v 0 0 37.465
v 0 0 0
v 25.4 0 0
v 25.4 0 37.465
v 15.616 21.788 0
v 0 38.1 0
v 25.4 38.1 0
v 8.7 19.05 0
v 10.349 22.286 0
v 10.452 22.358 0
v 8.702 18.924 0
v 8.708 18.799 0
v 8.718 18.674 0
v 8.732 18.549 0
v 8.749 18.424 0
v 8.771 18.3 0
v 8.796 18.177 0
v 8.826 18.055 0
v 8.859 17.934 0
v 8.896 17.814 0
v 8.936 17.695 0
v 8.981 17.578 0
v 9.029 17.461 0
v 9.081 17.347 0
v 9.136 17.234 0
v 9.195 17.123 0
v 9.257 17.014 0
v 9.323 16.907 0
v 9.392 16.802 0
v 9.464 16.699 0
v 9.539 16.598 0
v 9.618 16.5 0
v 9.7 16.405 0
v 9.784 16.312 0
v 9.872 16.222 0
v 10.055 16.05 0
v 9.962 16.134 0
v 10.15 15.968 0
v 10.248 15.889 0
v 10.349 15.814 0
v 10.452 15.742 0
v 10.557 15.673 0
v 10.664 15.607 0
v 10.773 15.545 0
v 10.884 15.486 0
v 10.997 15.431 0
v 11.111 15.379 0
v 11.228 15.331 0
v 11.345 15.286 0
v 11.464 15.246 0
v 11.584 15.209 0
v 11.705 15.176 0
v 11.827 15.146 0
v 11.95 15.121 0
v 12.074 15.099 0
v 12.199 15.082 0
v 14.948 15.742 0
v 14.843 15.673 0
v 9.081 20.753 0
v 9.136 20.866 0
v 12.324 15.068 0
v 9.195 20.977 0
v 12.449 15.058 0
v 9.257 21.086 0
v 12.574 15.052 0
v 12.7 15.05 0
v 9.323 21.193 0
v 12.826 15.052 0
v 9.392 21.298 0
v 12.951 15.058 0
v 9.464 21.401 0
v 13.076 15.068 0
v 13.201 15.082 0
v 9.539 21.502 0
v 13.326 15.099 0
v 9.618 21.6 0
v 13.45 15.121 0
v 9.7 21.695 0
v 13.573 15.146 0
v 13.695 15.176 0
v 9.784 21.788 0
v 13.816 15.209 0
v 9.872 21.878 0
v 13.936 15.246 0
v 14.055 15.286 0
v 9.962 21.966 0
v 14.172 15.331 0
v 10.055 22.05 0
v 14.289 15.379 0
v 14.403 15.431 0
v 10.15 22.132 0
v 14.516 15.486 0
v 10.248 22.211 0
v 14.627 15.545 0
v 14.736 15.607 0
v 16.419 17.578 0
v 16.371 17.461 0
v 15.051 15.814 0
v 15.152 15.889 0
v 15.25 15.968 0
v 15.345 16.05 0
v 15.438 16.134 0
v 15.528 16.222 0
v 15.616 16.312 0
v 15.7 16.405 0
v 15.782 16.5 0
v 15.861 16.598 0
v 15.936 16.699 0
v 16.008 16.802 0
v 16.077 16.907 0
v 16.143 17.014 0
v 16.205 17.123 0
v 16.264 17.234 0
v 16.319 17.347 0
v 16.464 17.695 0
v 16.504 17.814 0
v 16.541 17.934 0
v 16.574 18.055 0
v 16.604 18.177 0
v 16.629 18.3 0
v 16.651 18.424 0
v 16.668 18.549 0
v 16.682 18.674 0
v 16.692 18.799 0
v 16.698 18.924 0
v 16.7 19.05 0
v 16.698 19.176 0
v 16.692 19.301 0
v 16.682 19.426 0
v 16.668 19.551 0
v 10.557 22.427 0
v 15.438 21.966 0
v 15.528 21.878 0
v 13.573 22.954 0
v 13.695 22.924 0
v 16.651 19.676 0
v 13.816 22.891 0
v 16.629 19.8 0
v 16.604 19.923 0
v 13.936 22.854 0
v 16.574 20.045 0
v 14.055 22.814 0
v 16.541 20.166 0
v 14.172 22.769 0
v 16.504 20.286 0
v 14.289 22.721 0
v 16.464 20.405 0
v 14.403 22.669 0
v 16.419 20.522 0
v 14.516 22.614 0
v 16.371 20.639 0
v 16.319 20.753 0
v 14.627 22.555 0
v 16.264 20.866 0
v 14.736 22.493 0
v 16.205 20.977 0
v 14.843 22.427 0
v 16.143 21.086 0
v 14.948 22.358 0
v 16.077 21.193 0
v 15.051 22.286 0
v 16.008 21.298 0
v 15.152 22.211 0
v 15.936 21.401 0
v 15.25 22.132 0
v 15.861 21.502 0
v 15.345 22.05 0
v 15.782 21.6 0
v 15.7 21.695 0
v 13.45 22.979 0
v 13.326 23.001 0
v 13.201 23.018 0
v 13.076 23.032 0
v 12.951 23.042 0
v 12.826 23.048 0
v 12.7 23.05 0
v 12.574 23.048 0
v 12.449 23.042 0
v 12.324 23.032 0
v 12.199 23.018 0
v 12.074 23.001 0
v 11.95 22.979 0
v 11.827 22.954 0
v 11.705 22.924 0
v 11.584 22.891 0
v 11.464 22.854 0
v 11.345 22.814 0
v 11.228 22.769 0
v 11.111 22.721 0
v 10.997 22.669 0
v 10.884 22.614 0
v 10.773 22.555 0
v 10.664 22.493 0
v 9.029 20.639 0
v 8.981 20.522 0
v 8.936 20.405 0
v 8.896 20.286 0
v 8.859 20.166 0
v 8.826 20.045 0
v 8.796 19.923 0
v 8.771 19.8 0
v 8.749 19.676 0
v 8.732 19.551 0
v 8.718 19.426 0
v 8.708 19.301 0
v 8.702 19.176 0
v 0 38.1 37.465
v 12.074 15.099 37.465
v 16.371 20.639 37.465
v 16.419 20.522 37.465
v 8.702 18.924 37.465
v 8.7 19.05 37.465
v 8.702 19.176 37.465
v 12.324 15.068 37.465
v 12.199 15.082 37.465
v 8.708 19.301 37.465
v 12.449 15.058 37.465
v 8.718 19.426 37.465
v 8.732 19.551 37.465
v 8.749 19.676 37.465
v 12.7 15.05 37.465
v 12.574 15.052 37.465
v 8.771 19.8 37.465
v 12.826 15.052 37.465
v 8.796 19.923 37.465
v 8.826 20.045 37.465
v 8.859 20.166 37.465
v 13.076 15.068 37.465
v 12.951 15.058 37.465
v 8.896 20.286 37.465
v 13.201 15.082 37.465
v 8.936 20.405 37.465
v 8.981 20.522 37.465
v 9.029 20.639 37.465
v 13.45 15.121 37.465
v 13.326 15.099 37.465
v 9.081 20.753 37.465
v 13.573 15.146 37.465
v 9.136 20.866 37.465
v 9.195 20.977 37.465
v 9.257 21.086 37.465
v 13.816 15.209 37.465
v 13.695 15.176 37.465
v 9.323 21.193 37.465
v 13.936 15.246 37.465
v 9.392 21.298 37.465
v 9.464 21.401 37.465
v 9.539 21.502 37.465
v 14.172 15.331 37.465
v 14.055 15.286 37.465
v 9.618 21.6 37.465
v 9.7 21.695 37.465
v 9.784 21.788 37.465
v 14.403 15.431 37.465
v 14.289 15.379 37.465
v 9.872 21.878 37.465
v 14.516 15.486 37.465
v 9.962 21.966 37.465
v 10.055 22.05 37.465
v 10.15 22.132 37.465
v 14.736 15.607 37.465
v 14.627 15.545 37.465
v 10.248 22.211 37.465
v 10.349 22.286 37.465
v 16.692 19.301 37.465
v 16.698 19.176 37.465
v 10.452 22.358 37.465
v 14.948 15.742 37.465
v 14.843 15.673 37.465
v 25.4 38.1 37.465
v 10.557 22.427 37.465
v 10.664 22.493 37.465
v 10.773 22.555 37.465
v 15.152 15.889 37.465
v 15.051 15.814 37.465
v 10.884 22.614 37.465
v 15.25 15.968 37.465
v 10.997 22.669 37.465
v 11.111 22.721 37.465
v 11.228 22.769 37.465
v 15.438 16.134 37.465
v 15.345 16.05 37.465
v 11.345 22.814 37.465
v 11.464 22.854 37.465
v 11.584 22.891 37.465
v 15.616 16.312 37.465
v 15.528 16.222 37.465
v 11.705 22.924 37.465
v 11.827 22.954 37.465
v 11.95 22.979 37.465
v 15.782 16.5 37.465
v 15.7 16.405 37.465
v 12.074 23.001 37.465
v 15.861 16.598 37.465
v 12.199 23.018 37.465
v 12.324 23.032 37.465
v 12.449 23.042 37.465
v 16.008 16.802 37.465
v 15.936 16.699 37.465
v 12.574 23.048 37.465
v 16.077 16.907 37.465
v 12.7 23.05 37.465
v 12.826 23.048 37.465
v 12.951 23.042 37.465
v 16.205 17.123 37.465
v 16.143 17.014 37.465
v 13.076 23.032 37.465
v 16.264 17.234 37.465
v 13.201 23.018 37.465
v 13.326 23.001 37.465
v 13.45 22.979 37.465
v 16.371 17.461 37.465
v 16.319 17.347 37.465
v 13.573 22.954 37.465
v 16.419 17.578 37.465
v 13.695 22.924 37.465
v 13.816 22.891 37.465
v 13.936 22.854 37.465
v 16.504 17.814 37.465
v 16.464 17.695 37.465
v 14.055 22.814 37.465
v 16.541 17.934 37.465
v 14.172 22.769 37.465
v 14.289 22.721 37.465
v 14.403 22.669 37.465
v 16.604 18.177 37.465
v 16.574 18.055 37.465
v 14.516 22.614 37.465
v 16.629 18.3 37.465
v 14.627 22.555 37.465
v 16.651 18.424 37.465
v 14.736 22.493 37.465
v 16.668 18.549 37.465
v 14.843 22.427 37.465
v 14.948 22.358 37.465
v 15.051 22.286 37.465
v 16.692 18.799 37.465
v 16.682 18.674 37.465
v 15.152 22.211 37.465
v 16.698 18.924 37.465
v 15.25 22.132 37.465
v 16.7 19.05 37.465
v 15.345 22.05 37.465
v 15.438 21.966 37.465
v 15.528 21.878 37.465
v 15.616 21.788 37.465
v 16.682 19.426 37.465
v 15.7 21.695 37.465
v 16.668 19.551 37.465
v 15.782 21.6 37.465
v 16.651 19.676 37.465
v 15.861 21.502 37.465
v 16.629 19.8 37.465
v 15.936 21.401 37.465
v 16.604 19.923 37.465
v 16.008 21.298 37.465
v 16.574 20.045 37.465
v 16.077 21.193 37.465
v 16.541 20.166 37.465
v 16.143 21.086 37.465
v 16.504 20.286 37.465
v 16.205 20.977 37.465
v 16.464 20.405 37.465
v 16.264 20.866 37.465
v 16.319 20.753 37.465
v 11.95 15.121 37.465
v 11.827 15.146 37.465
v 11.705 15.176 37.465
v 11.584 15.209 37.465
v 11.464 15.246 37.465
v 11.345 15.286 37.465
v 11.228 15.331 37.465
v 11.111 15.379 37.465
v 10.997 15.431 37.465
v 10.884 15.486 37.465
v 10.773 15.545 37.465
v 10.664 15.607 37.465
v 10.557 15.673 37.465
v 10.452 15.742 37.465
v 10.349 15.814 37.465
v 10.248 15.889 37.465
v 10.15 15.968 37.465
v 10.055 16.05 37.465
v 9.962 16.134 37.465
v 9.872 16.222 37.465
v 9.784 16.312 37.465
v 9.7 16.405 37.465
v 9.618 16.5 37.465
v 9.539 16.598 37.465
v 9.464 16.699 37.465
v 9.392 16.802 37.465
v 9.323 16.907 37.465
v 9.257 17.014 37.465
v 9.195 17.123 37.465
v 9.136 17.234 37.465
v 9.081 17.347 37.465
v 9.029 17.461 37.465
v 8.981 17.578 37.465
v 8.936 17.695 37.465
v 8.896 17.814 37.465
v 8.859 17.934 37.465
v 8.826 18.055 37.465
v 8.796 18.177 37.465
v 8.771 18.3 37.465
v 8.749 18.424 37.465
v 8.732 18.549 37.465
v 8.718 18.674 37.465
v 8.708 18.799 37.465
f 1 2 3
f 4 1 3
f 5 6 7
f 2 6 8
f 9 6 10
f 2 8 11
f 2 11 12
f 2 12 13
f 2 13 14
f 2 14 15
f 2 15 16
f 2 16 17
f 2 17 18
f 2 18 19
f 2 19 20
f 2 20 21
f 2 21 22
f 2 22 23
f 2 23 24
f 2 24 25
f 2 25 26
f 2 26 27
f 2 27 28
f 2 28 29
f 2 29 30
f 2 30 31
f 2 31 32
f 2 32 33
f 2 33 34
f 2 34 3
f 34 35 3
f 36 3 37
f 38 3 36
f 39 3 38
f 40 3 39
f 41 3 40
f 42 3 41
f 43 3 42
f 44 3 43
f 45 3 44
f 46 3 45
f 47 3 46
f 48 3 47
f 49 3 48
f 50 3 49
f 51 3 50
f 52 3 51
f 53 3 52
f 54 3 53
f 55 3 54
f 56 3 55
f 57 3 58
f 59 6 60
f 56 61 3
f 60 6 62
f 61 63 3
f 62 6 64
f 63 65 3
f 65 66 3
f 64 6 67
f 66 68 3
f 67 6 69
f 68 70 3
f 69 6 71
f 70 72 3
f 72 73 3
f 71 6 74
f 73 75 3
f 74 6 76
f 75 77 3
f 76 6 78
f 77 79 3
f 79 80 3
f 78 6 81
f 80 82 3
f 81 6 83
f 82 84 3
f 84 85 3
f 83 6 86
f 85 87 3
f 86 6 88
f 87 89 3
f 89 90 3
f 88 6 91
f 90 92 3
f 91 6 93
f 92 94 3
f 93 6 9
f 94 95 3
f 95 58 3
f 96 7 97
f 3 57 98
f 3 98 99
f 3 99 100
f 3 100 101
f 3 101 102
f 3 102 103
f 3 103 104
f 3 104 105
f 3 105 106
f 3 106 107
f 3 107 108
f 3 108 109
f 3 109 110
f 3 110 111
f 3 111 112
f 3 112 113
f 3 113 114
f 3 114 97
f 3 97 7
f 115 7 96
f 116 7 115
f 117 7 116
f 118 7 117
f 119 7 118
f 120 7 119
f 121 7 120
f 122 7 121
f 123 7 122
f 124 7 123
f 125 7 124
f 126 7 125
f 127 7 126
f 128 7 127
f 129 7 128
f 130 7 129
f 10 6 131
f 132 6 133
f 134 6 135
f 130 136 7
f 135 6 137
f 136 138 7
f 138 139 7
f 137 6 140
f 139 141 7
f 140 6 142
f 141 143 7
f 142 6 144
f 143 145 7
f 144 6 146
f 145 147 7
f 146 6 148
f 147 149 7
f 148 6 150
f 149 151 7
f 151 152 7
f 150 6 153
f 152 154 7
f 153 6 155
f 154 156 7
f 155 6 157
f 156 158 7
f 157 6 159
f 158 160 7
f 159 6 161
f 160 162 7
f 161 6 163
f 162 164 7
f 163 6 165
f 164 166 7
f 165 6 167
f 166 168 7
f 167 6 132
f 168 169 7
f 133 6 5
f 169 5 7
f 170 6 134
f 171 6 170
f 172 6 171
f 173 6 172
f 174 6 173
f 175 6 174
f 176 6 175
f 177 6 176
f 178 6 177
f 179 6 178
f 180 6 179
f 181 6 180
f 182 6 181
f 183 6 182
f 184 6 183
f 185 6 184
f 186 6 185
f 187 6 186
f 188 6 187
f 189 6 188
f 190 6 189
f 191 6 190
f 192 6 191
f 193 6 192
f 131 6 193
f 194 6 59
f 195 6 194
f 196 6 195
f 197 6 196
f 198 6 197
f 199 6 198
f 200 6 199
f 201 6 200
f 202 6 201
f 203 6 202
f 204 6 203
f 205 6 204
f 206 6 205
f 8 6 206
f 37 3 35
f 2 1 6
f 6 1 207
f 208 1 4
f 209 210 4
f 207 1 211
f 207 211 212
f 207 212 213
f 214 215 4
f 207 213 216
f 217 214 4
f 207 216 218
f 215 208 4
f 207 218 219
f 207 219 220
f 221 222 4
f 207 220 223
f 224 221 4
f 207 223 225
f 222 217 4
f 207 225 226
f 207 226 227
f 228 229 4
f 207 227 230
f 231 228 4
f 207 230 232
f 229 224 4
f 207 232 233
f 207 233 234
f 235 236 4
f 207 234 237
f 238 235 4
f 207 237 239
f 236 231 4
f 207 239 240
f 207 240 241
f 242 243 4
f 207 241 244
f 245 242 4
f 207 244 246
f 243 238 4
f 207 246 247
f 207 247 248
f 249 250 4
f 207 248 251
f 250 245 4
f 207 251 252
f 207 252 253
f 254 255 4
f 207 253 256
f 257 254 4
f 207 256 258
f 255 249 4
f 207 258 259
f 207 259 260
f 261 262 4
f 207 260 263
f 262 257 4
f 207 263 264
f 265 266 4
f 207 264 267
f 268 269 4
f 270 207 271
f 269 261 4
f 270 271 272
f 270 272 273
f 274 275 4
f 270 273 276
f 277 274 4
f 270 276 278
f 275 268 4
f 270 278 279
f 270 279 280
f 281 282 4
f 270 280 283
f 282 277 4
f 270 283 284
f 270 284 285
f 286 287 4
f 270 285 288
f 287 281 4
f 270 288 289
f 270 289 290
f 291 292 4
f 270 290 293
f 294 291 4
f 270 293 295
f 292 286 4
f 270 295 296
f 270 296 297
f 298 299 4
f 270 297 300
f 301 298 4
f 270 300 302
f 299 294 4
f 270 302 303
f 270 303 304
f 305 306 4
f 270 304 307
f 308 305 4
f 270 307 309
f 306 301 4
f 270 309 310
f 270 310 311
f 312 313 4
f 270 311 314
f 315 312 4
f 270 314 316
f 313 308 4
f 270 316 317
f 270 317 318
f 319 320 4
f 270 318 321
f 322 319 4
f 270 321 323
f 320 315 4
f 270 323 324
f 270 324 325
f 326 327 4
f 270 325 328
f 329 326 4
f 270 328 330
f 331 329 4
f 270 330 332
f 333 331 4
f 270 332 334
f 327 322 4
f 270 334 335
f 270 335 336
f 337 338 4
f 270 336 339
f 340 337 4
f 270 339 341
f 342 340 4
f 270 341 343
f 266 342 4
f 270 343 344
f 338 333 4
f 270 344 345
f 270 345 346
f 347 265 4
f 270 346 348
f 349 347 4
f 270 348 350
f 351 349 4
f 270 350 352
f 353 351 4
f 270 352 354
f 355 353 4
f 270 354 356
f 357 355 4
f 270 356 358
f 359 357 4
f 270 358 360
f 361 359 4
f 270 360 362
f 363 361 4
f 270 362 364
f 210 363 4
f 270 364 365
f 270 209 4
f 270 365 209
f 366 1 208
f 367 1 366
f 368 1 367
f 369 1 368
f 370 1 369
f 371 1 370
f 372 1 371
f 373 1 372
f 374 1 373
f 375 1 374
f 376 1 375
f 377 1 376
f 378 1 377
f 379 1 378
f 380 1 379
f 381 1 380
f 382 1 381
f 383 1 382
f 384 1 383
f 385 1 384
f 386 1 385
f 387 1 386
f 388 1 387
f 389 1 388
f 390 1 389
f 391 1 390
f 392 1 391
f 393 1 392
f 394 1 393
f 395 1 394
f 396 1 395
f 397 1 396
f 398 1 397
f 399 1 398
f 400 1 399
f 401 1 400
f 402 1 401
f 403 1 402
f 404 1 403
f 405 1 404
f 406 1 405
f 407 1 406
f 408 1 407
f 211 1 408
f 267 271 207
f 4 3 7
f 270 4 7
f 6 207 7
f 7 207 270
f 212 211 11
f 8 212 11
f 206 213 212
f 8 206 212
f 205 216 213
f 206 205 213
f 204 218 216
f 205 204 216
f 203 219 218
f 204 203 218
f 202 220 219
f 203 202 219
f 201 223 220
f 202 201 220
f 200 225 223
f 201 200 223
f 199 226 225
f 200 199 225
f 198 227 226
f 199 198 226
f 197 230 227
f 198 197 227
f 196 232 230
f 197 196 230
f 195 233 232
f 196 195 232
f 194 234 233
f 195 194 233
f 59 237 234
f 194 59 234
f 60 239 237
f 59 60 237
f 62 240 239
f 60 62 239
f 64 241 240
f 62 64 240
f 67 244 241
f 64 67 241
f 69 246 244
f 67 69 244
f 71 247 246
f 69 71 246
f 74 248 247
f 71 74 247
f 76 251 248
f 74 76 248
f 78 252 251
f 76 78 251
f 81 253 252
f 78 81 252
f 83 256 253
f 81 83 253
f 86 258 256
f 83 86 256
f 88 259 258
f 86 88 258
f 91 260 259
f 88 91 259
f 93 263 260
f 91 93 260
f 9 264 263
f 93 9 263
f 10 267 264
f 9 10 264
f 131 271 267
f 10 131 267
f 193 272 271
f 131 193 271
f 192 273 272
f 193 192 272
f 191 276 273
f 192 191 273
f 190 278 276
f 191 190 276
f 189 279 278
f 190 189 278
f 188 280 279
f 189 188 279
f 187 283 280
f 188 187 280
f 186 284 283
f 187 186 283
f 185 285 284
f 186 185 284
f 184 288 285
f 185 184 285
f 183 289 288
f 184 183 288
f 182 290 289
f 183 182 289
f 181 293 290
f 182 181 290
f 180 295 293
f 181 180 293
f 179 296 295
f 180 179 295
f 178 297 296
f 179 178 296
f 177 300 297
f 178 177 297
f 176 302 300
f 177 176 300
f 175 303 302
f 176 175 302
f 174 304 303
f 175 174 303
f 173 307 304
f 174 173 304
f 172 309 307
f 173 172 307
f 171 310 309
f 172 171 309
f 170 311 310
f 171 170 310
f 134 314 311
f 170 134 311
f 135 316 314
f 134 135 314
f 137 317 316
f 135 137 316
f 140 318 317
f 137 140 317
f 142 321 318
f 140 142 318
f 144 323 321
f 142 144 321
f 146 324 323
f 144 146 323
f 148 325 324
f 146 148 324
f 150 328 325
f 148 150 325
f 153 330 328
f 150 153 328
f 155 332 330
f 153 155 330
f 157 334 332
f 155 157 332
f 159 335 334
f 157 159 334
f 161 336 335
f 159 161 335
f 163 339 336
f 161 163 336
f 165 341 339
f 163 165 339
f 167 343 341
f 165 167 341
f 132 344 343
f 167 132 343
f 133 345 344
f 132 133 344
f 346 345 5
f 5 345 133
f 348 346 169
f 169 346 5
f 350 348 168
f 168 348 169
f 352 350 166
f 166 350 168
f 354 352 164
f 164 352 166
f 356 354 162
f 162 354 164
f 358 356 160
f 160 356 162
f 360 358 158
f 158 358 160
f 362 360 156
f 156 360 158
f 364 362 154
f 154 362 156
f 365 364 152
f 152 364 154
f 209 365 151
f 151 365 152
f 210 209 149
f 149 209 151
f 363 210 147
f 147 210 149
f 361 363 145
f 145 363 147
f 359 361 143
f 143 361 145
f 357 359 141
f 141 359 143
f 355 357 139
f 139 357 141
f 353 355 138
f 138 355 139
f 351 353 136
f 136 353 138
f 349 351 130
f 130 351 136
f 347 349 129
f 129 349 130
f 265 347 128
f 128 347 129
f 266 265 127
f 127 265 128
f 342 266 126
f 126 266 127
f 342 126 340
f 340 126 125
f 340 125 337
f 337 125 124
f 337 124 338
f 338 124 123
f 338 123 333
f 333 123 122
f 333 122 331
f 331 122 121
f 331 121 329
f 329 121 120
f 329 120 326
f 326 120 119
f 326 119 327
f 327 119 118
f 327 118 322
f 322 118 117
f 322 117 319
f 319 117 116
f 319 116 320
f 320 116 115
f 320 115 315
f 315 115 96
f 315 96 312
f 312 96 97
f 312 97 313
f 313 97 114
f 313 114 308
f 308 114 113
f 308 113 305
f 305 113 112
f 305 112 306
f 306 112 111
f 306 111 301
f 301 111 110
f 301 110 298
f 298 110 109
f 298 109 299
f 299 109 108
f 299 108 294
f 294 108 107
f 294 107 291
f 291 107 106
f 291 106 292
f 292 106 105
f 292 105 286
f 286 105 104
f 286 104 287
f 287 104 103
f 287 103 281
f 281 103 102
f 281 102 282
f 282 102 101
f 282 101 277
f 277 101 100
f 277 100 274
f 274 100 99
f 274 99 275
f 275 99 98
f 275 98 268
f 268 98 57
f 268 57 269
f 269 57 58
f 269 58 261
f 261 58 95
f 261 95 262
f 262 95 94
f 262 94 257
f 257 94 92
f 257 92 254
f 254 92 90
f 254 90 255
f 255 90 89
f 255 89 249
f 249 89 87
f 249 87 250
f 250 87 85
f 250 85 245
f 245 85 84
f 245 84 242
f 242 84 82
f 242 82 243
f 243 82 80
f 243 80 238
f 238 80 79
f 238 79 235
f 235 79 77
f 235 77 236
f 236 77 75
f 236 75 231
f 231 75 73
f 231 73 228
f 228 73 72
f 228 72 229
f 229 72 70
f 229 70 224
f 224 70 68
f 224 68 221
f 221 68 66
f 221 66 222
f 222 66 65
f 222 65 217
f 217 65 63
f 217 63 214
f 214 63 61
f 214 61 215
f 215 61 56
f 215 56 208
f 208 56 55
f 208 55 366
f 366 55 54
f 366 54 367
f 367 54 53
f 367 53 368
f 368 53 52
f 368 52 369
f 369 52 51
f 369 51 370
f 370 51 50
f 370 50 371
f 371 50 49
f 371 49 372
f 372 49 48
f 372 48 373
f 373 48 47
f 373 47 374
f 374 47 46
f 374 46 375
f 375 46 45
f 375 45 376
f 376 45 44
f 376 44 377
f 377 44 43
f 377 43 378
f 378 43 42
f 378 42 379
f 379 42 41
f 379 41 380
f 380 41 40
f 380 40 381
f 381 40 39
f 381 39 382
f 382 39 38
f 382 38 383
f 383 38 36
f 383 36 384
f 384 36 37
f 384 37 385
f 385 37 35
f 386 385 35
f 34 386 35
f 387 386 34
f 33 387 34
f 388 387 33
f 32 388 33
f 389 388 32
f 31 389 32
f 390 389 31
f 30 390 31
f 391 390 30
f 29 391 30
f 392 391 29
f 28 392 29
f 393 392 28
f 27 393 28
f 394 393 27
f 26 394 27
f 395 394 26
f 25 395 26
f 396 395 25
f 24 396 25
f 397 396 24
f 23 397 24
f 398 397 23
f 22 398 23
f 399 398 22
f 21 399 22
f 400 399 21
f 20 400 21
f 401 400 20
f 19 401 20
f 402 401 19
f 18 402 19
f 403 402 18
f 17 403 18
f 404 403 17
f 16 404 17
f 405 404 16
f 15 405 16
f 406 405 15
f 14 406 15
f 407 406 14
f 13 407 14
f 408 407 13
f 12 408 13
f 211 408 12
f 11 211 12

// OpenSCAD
width = 25.4;
depth = 25.4 * 1.5;
height = 1.475 * 25.4;
bolt = 8;

#difference()
{
linear_extrude(height = height )
{
	polygon(points=[[0, 0],[width, 0],[width, depth], [0, depth]]);

}

linear_extrude(height = height)
{
	translate([width/2, depth/2,0])
	{
		circle($fn = 200, r = bolt/2);
	}
}
}
